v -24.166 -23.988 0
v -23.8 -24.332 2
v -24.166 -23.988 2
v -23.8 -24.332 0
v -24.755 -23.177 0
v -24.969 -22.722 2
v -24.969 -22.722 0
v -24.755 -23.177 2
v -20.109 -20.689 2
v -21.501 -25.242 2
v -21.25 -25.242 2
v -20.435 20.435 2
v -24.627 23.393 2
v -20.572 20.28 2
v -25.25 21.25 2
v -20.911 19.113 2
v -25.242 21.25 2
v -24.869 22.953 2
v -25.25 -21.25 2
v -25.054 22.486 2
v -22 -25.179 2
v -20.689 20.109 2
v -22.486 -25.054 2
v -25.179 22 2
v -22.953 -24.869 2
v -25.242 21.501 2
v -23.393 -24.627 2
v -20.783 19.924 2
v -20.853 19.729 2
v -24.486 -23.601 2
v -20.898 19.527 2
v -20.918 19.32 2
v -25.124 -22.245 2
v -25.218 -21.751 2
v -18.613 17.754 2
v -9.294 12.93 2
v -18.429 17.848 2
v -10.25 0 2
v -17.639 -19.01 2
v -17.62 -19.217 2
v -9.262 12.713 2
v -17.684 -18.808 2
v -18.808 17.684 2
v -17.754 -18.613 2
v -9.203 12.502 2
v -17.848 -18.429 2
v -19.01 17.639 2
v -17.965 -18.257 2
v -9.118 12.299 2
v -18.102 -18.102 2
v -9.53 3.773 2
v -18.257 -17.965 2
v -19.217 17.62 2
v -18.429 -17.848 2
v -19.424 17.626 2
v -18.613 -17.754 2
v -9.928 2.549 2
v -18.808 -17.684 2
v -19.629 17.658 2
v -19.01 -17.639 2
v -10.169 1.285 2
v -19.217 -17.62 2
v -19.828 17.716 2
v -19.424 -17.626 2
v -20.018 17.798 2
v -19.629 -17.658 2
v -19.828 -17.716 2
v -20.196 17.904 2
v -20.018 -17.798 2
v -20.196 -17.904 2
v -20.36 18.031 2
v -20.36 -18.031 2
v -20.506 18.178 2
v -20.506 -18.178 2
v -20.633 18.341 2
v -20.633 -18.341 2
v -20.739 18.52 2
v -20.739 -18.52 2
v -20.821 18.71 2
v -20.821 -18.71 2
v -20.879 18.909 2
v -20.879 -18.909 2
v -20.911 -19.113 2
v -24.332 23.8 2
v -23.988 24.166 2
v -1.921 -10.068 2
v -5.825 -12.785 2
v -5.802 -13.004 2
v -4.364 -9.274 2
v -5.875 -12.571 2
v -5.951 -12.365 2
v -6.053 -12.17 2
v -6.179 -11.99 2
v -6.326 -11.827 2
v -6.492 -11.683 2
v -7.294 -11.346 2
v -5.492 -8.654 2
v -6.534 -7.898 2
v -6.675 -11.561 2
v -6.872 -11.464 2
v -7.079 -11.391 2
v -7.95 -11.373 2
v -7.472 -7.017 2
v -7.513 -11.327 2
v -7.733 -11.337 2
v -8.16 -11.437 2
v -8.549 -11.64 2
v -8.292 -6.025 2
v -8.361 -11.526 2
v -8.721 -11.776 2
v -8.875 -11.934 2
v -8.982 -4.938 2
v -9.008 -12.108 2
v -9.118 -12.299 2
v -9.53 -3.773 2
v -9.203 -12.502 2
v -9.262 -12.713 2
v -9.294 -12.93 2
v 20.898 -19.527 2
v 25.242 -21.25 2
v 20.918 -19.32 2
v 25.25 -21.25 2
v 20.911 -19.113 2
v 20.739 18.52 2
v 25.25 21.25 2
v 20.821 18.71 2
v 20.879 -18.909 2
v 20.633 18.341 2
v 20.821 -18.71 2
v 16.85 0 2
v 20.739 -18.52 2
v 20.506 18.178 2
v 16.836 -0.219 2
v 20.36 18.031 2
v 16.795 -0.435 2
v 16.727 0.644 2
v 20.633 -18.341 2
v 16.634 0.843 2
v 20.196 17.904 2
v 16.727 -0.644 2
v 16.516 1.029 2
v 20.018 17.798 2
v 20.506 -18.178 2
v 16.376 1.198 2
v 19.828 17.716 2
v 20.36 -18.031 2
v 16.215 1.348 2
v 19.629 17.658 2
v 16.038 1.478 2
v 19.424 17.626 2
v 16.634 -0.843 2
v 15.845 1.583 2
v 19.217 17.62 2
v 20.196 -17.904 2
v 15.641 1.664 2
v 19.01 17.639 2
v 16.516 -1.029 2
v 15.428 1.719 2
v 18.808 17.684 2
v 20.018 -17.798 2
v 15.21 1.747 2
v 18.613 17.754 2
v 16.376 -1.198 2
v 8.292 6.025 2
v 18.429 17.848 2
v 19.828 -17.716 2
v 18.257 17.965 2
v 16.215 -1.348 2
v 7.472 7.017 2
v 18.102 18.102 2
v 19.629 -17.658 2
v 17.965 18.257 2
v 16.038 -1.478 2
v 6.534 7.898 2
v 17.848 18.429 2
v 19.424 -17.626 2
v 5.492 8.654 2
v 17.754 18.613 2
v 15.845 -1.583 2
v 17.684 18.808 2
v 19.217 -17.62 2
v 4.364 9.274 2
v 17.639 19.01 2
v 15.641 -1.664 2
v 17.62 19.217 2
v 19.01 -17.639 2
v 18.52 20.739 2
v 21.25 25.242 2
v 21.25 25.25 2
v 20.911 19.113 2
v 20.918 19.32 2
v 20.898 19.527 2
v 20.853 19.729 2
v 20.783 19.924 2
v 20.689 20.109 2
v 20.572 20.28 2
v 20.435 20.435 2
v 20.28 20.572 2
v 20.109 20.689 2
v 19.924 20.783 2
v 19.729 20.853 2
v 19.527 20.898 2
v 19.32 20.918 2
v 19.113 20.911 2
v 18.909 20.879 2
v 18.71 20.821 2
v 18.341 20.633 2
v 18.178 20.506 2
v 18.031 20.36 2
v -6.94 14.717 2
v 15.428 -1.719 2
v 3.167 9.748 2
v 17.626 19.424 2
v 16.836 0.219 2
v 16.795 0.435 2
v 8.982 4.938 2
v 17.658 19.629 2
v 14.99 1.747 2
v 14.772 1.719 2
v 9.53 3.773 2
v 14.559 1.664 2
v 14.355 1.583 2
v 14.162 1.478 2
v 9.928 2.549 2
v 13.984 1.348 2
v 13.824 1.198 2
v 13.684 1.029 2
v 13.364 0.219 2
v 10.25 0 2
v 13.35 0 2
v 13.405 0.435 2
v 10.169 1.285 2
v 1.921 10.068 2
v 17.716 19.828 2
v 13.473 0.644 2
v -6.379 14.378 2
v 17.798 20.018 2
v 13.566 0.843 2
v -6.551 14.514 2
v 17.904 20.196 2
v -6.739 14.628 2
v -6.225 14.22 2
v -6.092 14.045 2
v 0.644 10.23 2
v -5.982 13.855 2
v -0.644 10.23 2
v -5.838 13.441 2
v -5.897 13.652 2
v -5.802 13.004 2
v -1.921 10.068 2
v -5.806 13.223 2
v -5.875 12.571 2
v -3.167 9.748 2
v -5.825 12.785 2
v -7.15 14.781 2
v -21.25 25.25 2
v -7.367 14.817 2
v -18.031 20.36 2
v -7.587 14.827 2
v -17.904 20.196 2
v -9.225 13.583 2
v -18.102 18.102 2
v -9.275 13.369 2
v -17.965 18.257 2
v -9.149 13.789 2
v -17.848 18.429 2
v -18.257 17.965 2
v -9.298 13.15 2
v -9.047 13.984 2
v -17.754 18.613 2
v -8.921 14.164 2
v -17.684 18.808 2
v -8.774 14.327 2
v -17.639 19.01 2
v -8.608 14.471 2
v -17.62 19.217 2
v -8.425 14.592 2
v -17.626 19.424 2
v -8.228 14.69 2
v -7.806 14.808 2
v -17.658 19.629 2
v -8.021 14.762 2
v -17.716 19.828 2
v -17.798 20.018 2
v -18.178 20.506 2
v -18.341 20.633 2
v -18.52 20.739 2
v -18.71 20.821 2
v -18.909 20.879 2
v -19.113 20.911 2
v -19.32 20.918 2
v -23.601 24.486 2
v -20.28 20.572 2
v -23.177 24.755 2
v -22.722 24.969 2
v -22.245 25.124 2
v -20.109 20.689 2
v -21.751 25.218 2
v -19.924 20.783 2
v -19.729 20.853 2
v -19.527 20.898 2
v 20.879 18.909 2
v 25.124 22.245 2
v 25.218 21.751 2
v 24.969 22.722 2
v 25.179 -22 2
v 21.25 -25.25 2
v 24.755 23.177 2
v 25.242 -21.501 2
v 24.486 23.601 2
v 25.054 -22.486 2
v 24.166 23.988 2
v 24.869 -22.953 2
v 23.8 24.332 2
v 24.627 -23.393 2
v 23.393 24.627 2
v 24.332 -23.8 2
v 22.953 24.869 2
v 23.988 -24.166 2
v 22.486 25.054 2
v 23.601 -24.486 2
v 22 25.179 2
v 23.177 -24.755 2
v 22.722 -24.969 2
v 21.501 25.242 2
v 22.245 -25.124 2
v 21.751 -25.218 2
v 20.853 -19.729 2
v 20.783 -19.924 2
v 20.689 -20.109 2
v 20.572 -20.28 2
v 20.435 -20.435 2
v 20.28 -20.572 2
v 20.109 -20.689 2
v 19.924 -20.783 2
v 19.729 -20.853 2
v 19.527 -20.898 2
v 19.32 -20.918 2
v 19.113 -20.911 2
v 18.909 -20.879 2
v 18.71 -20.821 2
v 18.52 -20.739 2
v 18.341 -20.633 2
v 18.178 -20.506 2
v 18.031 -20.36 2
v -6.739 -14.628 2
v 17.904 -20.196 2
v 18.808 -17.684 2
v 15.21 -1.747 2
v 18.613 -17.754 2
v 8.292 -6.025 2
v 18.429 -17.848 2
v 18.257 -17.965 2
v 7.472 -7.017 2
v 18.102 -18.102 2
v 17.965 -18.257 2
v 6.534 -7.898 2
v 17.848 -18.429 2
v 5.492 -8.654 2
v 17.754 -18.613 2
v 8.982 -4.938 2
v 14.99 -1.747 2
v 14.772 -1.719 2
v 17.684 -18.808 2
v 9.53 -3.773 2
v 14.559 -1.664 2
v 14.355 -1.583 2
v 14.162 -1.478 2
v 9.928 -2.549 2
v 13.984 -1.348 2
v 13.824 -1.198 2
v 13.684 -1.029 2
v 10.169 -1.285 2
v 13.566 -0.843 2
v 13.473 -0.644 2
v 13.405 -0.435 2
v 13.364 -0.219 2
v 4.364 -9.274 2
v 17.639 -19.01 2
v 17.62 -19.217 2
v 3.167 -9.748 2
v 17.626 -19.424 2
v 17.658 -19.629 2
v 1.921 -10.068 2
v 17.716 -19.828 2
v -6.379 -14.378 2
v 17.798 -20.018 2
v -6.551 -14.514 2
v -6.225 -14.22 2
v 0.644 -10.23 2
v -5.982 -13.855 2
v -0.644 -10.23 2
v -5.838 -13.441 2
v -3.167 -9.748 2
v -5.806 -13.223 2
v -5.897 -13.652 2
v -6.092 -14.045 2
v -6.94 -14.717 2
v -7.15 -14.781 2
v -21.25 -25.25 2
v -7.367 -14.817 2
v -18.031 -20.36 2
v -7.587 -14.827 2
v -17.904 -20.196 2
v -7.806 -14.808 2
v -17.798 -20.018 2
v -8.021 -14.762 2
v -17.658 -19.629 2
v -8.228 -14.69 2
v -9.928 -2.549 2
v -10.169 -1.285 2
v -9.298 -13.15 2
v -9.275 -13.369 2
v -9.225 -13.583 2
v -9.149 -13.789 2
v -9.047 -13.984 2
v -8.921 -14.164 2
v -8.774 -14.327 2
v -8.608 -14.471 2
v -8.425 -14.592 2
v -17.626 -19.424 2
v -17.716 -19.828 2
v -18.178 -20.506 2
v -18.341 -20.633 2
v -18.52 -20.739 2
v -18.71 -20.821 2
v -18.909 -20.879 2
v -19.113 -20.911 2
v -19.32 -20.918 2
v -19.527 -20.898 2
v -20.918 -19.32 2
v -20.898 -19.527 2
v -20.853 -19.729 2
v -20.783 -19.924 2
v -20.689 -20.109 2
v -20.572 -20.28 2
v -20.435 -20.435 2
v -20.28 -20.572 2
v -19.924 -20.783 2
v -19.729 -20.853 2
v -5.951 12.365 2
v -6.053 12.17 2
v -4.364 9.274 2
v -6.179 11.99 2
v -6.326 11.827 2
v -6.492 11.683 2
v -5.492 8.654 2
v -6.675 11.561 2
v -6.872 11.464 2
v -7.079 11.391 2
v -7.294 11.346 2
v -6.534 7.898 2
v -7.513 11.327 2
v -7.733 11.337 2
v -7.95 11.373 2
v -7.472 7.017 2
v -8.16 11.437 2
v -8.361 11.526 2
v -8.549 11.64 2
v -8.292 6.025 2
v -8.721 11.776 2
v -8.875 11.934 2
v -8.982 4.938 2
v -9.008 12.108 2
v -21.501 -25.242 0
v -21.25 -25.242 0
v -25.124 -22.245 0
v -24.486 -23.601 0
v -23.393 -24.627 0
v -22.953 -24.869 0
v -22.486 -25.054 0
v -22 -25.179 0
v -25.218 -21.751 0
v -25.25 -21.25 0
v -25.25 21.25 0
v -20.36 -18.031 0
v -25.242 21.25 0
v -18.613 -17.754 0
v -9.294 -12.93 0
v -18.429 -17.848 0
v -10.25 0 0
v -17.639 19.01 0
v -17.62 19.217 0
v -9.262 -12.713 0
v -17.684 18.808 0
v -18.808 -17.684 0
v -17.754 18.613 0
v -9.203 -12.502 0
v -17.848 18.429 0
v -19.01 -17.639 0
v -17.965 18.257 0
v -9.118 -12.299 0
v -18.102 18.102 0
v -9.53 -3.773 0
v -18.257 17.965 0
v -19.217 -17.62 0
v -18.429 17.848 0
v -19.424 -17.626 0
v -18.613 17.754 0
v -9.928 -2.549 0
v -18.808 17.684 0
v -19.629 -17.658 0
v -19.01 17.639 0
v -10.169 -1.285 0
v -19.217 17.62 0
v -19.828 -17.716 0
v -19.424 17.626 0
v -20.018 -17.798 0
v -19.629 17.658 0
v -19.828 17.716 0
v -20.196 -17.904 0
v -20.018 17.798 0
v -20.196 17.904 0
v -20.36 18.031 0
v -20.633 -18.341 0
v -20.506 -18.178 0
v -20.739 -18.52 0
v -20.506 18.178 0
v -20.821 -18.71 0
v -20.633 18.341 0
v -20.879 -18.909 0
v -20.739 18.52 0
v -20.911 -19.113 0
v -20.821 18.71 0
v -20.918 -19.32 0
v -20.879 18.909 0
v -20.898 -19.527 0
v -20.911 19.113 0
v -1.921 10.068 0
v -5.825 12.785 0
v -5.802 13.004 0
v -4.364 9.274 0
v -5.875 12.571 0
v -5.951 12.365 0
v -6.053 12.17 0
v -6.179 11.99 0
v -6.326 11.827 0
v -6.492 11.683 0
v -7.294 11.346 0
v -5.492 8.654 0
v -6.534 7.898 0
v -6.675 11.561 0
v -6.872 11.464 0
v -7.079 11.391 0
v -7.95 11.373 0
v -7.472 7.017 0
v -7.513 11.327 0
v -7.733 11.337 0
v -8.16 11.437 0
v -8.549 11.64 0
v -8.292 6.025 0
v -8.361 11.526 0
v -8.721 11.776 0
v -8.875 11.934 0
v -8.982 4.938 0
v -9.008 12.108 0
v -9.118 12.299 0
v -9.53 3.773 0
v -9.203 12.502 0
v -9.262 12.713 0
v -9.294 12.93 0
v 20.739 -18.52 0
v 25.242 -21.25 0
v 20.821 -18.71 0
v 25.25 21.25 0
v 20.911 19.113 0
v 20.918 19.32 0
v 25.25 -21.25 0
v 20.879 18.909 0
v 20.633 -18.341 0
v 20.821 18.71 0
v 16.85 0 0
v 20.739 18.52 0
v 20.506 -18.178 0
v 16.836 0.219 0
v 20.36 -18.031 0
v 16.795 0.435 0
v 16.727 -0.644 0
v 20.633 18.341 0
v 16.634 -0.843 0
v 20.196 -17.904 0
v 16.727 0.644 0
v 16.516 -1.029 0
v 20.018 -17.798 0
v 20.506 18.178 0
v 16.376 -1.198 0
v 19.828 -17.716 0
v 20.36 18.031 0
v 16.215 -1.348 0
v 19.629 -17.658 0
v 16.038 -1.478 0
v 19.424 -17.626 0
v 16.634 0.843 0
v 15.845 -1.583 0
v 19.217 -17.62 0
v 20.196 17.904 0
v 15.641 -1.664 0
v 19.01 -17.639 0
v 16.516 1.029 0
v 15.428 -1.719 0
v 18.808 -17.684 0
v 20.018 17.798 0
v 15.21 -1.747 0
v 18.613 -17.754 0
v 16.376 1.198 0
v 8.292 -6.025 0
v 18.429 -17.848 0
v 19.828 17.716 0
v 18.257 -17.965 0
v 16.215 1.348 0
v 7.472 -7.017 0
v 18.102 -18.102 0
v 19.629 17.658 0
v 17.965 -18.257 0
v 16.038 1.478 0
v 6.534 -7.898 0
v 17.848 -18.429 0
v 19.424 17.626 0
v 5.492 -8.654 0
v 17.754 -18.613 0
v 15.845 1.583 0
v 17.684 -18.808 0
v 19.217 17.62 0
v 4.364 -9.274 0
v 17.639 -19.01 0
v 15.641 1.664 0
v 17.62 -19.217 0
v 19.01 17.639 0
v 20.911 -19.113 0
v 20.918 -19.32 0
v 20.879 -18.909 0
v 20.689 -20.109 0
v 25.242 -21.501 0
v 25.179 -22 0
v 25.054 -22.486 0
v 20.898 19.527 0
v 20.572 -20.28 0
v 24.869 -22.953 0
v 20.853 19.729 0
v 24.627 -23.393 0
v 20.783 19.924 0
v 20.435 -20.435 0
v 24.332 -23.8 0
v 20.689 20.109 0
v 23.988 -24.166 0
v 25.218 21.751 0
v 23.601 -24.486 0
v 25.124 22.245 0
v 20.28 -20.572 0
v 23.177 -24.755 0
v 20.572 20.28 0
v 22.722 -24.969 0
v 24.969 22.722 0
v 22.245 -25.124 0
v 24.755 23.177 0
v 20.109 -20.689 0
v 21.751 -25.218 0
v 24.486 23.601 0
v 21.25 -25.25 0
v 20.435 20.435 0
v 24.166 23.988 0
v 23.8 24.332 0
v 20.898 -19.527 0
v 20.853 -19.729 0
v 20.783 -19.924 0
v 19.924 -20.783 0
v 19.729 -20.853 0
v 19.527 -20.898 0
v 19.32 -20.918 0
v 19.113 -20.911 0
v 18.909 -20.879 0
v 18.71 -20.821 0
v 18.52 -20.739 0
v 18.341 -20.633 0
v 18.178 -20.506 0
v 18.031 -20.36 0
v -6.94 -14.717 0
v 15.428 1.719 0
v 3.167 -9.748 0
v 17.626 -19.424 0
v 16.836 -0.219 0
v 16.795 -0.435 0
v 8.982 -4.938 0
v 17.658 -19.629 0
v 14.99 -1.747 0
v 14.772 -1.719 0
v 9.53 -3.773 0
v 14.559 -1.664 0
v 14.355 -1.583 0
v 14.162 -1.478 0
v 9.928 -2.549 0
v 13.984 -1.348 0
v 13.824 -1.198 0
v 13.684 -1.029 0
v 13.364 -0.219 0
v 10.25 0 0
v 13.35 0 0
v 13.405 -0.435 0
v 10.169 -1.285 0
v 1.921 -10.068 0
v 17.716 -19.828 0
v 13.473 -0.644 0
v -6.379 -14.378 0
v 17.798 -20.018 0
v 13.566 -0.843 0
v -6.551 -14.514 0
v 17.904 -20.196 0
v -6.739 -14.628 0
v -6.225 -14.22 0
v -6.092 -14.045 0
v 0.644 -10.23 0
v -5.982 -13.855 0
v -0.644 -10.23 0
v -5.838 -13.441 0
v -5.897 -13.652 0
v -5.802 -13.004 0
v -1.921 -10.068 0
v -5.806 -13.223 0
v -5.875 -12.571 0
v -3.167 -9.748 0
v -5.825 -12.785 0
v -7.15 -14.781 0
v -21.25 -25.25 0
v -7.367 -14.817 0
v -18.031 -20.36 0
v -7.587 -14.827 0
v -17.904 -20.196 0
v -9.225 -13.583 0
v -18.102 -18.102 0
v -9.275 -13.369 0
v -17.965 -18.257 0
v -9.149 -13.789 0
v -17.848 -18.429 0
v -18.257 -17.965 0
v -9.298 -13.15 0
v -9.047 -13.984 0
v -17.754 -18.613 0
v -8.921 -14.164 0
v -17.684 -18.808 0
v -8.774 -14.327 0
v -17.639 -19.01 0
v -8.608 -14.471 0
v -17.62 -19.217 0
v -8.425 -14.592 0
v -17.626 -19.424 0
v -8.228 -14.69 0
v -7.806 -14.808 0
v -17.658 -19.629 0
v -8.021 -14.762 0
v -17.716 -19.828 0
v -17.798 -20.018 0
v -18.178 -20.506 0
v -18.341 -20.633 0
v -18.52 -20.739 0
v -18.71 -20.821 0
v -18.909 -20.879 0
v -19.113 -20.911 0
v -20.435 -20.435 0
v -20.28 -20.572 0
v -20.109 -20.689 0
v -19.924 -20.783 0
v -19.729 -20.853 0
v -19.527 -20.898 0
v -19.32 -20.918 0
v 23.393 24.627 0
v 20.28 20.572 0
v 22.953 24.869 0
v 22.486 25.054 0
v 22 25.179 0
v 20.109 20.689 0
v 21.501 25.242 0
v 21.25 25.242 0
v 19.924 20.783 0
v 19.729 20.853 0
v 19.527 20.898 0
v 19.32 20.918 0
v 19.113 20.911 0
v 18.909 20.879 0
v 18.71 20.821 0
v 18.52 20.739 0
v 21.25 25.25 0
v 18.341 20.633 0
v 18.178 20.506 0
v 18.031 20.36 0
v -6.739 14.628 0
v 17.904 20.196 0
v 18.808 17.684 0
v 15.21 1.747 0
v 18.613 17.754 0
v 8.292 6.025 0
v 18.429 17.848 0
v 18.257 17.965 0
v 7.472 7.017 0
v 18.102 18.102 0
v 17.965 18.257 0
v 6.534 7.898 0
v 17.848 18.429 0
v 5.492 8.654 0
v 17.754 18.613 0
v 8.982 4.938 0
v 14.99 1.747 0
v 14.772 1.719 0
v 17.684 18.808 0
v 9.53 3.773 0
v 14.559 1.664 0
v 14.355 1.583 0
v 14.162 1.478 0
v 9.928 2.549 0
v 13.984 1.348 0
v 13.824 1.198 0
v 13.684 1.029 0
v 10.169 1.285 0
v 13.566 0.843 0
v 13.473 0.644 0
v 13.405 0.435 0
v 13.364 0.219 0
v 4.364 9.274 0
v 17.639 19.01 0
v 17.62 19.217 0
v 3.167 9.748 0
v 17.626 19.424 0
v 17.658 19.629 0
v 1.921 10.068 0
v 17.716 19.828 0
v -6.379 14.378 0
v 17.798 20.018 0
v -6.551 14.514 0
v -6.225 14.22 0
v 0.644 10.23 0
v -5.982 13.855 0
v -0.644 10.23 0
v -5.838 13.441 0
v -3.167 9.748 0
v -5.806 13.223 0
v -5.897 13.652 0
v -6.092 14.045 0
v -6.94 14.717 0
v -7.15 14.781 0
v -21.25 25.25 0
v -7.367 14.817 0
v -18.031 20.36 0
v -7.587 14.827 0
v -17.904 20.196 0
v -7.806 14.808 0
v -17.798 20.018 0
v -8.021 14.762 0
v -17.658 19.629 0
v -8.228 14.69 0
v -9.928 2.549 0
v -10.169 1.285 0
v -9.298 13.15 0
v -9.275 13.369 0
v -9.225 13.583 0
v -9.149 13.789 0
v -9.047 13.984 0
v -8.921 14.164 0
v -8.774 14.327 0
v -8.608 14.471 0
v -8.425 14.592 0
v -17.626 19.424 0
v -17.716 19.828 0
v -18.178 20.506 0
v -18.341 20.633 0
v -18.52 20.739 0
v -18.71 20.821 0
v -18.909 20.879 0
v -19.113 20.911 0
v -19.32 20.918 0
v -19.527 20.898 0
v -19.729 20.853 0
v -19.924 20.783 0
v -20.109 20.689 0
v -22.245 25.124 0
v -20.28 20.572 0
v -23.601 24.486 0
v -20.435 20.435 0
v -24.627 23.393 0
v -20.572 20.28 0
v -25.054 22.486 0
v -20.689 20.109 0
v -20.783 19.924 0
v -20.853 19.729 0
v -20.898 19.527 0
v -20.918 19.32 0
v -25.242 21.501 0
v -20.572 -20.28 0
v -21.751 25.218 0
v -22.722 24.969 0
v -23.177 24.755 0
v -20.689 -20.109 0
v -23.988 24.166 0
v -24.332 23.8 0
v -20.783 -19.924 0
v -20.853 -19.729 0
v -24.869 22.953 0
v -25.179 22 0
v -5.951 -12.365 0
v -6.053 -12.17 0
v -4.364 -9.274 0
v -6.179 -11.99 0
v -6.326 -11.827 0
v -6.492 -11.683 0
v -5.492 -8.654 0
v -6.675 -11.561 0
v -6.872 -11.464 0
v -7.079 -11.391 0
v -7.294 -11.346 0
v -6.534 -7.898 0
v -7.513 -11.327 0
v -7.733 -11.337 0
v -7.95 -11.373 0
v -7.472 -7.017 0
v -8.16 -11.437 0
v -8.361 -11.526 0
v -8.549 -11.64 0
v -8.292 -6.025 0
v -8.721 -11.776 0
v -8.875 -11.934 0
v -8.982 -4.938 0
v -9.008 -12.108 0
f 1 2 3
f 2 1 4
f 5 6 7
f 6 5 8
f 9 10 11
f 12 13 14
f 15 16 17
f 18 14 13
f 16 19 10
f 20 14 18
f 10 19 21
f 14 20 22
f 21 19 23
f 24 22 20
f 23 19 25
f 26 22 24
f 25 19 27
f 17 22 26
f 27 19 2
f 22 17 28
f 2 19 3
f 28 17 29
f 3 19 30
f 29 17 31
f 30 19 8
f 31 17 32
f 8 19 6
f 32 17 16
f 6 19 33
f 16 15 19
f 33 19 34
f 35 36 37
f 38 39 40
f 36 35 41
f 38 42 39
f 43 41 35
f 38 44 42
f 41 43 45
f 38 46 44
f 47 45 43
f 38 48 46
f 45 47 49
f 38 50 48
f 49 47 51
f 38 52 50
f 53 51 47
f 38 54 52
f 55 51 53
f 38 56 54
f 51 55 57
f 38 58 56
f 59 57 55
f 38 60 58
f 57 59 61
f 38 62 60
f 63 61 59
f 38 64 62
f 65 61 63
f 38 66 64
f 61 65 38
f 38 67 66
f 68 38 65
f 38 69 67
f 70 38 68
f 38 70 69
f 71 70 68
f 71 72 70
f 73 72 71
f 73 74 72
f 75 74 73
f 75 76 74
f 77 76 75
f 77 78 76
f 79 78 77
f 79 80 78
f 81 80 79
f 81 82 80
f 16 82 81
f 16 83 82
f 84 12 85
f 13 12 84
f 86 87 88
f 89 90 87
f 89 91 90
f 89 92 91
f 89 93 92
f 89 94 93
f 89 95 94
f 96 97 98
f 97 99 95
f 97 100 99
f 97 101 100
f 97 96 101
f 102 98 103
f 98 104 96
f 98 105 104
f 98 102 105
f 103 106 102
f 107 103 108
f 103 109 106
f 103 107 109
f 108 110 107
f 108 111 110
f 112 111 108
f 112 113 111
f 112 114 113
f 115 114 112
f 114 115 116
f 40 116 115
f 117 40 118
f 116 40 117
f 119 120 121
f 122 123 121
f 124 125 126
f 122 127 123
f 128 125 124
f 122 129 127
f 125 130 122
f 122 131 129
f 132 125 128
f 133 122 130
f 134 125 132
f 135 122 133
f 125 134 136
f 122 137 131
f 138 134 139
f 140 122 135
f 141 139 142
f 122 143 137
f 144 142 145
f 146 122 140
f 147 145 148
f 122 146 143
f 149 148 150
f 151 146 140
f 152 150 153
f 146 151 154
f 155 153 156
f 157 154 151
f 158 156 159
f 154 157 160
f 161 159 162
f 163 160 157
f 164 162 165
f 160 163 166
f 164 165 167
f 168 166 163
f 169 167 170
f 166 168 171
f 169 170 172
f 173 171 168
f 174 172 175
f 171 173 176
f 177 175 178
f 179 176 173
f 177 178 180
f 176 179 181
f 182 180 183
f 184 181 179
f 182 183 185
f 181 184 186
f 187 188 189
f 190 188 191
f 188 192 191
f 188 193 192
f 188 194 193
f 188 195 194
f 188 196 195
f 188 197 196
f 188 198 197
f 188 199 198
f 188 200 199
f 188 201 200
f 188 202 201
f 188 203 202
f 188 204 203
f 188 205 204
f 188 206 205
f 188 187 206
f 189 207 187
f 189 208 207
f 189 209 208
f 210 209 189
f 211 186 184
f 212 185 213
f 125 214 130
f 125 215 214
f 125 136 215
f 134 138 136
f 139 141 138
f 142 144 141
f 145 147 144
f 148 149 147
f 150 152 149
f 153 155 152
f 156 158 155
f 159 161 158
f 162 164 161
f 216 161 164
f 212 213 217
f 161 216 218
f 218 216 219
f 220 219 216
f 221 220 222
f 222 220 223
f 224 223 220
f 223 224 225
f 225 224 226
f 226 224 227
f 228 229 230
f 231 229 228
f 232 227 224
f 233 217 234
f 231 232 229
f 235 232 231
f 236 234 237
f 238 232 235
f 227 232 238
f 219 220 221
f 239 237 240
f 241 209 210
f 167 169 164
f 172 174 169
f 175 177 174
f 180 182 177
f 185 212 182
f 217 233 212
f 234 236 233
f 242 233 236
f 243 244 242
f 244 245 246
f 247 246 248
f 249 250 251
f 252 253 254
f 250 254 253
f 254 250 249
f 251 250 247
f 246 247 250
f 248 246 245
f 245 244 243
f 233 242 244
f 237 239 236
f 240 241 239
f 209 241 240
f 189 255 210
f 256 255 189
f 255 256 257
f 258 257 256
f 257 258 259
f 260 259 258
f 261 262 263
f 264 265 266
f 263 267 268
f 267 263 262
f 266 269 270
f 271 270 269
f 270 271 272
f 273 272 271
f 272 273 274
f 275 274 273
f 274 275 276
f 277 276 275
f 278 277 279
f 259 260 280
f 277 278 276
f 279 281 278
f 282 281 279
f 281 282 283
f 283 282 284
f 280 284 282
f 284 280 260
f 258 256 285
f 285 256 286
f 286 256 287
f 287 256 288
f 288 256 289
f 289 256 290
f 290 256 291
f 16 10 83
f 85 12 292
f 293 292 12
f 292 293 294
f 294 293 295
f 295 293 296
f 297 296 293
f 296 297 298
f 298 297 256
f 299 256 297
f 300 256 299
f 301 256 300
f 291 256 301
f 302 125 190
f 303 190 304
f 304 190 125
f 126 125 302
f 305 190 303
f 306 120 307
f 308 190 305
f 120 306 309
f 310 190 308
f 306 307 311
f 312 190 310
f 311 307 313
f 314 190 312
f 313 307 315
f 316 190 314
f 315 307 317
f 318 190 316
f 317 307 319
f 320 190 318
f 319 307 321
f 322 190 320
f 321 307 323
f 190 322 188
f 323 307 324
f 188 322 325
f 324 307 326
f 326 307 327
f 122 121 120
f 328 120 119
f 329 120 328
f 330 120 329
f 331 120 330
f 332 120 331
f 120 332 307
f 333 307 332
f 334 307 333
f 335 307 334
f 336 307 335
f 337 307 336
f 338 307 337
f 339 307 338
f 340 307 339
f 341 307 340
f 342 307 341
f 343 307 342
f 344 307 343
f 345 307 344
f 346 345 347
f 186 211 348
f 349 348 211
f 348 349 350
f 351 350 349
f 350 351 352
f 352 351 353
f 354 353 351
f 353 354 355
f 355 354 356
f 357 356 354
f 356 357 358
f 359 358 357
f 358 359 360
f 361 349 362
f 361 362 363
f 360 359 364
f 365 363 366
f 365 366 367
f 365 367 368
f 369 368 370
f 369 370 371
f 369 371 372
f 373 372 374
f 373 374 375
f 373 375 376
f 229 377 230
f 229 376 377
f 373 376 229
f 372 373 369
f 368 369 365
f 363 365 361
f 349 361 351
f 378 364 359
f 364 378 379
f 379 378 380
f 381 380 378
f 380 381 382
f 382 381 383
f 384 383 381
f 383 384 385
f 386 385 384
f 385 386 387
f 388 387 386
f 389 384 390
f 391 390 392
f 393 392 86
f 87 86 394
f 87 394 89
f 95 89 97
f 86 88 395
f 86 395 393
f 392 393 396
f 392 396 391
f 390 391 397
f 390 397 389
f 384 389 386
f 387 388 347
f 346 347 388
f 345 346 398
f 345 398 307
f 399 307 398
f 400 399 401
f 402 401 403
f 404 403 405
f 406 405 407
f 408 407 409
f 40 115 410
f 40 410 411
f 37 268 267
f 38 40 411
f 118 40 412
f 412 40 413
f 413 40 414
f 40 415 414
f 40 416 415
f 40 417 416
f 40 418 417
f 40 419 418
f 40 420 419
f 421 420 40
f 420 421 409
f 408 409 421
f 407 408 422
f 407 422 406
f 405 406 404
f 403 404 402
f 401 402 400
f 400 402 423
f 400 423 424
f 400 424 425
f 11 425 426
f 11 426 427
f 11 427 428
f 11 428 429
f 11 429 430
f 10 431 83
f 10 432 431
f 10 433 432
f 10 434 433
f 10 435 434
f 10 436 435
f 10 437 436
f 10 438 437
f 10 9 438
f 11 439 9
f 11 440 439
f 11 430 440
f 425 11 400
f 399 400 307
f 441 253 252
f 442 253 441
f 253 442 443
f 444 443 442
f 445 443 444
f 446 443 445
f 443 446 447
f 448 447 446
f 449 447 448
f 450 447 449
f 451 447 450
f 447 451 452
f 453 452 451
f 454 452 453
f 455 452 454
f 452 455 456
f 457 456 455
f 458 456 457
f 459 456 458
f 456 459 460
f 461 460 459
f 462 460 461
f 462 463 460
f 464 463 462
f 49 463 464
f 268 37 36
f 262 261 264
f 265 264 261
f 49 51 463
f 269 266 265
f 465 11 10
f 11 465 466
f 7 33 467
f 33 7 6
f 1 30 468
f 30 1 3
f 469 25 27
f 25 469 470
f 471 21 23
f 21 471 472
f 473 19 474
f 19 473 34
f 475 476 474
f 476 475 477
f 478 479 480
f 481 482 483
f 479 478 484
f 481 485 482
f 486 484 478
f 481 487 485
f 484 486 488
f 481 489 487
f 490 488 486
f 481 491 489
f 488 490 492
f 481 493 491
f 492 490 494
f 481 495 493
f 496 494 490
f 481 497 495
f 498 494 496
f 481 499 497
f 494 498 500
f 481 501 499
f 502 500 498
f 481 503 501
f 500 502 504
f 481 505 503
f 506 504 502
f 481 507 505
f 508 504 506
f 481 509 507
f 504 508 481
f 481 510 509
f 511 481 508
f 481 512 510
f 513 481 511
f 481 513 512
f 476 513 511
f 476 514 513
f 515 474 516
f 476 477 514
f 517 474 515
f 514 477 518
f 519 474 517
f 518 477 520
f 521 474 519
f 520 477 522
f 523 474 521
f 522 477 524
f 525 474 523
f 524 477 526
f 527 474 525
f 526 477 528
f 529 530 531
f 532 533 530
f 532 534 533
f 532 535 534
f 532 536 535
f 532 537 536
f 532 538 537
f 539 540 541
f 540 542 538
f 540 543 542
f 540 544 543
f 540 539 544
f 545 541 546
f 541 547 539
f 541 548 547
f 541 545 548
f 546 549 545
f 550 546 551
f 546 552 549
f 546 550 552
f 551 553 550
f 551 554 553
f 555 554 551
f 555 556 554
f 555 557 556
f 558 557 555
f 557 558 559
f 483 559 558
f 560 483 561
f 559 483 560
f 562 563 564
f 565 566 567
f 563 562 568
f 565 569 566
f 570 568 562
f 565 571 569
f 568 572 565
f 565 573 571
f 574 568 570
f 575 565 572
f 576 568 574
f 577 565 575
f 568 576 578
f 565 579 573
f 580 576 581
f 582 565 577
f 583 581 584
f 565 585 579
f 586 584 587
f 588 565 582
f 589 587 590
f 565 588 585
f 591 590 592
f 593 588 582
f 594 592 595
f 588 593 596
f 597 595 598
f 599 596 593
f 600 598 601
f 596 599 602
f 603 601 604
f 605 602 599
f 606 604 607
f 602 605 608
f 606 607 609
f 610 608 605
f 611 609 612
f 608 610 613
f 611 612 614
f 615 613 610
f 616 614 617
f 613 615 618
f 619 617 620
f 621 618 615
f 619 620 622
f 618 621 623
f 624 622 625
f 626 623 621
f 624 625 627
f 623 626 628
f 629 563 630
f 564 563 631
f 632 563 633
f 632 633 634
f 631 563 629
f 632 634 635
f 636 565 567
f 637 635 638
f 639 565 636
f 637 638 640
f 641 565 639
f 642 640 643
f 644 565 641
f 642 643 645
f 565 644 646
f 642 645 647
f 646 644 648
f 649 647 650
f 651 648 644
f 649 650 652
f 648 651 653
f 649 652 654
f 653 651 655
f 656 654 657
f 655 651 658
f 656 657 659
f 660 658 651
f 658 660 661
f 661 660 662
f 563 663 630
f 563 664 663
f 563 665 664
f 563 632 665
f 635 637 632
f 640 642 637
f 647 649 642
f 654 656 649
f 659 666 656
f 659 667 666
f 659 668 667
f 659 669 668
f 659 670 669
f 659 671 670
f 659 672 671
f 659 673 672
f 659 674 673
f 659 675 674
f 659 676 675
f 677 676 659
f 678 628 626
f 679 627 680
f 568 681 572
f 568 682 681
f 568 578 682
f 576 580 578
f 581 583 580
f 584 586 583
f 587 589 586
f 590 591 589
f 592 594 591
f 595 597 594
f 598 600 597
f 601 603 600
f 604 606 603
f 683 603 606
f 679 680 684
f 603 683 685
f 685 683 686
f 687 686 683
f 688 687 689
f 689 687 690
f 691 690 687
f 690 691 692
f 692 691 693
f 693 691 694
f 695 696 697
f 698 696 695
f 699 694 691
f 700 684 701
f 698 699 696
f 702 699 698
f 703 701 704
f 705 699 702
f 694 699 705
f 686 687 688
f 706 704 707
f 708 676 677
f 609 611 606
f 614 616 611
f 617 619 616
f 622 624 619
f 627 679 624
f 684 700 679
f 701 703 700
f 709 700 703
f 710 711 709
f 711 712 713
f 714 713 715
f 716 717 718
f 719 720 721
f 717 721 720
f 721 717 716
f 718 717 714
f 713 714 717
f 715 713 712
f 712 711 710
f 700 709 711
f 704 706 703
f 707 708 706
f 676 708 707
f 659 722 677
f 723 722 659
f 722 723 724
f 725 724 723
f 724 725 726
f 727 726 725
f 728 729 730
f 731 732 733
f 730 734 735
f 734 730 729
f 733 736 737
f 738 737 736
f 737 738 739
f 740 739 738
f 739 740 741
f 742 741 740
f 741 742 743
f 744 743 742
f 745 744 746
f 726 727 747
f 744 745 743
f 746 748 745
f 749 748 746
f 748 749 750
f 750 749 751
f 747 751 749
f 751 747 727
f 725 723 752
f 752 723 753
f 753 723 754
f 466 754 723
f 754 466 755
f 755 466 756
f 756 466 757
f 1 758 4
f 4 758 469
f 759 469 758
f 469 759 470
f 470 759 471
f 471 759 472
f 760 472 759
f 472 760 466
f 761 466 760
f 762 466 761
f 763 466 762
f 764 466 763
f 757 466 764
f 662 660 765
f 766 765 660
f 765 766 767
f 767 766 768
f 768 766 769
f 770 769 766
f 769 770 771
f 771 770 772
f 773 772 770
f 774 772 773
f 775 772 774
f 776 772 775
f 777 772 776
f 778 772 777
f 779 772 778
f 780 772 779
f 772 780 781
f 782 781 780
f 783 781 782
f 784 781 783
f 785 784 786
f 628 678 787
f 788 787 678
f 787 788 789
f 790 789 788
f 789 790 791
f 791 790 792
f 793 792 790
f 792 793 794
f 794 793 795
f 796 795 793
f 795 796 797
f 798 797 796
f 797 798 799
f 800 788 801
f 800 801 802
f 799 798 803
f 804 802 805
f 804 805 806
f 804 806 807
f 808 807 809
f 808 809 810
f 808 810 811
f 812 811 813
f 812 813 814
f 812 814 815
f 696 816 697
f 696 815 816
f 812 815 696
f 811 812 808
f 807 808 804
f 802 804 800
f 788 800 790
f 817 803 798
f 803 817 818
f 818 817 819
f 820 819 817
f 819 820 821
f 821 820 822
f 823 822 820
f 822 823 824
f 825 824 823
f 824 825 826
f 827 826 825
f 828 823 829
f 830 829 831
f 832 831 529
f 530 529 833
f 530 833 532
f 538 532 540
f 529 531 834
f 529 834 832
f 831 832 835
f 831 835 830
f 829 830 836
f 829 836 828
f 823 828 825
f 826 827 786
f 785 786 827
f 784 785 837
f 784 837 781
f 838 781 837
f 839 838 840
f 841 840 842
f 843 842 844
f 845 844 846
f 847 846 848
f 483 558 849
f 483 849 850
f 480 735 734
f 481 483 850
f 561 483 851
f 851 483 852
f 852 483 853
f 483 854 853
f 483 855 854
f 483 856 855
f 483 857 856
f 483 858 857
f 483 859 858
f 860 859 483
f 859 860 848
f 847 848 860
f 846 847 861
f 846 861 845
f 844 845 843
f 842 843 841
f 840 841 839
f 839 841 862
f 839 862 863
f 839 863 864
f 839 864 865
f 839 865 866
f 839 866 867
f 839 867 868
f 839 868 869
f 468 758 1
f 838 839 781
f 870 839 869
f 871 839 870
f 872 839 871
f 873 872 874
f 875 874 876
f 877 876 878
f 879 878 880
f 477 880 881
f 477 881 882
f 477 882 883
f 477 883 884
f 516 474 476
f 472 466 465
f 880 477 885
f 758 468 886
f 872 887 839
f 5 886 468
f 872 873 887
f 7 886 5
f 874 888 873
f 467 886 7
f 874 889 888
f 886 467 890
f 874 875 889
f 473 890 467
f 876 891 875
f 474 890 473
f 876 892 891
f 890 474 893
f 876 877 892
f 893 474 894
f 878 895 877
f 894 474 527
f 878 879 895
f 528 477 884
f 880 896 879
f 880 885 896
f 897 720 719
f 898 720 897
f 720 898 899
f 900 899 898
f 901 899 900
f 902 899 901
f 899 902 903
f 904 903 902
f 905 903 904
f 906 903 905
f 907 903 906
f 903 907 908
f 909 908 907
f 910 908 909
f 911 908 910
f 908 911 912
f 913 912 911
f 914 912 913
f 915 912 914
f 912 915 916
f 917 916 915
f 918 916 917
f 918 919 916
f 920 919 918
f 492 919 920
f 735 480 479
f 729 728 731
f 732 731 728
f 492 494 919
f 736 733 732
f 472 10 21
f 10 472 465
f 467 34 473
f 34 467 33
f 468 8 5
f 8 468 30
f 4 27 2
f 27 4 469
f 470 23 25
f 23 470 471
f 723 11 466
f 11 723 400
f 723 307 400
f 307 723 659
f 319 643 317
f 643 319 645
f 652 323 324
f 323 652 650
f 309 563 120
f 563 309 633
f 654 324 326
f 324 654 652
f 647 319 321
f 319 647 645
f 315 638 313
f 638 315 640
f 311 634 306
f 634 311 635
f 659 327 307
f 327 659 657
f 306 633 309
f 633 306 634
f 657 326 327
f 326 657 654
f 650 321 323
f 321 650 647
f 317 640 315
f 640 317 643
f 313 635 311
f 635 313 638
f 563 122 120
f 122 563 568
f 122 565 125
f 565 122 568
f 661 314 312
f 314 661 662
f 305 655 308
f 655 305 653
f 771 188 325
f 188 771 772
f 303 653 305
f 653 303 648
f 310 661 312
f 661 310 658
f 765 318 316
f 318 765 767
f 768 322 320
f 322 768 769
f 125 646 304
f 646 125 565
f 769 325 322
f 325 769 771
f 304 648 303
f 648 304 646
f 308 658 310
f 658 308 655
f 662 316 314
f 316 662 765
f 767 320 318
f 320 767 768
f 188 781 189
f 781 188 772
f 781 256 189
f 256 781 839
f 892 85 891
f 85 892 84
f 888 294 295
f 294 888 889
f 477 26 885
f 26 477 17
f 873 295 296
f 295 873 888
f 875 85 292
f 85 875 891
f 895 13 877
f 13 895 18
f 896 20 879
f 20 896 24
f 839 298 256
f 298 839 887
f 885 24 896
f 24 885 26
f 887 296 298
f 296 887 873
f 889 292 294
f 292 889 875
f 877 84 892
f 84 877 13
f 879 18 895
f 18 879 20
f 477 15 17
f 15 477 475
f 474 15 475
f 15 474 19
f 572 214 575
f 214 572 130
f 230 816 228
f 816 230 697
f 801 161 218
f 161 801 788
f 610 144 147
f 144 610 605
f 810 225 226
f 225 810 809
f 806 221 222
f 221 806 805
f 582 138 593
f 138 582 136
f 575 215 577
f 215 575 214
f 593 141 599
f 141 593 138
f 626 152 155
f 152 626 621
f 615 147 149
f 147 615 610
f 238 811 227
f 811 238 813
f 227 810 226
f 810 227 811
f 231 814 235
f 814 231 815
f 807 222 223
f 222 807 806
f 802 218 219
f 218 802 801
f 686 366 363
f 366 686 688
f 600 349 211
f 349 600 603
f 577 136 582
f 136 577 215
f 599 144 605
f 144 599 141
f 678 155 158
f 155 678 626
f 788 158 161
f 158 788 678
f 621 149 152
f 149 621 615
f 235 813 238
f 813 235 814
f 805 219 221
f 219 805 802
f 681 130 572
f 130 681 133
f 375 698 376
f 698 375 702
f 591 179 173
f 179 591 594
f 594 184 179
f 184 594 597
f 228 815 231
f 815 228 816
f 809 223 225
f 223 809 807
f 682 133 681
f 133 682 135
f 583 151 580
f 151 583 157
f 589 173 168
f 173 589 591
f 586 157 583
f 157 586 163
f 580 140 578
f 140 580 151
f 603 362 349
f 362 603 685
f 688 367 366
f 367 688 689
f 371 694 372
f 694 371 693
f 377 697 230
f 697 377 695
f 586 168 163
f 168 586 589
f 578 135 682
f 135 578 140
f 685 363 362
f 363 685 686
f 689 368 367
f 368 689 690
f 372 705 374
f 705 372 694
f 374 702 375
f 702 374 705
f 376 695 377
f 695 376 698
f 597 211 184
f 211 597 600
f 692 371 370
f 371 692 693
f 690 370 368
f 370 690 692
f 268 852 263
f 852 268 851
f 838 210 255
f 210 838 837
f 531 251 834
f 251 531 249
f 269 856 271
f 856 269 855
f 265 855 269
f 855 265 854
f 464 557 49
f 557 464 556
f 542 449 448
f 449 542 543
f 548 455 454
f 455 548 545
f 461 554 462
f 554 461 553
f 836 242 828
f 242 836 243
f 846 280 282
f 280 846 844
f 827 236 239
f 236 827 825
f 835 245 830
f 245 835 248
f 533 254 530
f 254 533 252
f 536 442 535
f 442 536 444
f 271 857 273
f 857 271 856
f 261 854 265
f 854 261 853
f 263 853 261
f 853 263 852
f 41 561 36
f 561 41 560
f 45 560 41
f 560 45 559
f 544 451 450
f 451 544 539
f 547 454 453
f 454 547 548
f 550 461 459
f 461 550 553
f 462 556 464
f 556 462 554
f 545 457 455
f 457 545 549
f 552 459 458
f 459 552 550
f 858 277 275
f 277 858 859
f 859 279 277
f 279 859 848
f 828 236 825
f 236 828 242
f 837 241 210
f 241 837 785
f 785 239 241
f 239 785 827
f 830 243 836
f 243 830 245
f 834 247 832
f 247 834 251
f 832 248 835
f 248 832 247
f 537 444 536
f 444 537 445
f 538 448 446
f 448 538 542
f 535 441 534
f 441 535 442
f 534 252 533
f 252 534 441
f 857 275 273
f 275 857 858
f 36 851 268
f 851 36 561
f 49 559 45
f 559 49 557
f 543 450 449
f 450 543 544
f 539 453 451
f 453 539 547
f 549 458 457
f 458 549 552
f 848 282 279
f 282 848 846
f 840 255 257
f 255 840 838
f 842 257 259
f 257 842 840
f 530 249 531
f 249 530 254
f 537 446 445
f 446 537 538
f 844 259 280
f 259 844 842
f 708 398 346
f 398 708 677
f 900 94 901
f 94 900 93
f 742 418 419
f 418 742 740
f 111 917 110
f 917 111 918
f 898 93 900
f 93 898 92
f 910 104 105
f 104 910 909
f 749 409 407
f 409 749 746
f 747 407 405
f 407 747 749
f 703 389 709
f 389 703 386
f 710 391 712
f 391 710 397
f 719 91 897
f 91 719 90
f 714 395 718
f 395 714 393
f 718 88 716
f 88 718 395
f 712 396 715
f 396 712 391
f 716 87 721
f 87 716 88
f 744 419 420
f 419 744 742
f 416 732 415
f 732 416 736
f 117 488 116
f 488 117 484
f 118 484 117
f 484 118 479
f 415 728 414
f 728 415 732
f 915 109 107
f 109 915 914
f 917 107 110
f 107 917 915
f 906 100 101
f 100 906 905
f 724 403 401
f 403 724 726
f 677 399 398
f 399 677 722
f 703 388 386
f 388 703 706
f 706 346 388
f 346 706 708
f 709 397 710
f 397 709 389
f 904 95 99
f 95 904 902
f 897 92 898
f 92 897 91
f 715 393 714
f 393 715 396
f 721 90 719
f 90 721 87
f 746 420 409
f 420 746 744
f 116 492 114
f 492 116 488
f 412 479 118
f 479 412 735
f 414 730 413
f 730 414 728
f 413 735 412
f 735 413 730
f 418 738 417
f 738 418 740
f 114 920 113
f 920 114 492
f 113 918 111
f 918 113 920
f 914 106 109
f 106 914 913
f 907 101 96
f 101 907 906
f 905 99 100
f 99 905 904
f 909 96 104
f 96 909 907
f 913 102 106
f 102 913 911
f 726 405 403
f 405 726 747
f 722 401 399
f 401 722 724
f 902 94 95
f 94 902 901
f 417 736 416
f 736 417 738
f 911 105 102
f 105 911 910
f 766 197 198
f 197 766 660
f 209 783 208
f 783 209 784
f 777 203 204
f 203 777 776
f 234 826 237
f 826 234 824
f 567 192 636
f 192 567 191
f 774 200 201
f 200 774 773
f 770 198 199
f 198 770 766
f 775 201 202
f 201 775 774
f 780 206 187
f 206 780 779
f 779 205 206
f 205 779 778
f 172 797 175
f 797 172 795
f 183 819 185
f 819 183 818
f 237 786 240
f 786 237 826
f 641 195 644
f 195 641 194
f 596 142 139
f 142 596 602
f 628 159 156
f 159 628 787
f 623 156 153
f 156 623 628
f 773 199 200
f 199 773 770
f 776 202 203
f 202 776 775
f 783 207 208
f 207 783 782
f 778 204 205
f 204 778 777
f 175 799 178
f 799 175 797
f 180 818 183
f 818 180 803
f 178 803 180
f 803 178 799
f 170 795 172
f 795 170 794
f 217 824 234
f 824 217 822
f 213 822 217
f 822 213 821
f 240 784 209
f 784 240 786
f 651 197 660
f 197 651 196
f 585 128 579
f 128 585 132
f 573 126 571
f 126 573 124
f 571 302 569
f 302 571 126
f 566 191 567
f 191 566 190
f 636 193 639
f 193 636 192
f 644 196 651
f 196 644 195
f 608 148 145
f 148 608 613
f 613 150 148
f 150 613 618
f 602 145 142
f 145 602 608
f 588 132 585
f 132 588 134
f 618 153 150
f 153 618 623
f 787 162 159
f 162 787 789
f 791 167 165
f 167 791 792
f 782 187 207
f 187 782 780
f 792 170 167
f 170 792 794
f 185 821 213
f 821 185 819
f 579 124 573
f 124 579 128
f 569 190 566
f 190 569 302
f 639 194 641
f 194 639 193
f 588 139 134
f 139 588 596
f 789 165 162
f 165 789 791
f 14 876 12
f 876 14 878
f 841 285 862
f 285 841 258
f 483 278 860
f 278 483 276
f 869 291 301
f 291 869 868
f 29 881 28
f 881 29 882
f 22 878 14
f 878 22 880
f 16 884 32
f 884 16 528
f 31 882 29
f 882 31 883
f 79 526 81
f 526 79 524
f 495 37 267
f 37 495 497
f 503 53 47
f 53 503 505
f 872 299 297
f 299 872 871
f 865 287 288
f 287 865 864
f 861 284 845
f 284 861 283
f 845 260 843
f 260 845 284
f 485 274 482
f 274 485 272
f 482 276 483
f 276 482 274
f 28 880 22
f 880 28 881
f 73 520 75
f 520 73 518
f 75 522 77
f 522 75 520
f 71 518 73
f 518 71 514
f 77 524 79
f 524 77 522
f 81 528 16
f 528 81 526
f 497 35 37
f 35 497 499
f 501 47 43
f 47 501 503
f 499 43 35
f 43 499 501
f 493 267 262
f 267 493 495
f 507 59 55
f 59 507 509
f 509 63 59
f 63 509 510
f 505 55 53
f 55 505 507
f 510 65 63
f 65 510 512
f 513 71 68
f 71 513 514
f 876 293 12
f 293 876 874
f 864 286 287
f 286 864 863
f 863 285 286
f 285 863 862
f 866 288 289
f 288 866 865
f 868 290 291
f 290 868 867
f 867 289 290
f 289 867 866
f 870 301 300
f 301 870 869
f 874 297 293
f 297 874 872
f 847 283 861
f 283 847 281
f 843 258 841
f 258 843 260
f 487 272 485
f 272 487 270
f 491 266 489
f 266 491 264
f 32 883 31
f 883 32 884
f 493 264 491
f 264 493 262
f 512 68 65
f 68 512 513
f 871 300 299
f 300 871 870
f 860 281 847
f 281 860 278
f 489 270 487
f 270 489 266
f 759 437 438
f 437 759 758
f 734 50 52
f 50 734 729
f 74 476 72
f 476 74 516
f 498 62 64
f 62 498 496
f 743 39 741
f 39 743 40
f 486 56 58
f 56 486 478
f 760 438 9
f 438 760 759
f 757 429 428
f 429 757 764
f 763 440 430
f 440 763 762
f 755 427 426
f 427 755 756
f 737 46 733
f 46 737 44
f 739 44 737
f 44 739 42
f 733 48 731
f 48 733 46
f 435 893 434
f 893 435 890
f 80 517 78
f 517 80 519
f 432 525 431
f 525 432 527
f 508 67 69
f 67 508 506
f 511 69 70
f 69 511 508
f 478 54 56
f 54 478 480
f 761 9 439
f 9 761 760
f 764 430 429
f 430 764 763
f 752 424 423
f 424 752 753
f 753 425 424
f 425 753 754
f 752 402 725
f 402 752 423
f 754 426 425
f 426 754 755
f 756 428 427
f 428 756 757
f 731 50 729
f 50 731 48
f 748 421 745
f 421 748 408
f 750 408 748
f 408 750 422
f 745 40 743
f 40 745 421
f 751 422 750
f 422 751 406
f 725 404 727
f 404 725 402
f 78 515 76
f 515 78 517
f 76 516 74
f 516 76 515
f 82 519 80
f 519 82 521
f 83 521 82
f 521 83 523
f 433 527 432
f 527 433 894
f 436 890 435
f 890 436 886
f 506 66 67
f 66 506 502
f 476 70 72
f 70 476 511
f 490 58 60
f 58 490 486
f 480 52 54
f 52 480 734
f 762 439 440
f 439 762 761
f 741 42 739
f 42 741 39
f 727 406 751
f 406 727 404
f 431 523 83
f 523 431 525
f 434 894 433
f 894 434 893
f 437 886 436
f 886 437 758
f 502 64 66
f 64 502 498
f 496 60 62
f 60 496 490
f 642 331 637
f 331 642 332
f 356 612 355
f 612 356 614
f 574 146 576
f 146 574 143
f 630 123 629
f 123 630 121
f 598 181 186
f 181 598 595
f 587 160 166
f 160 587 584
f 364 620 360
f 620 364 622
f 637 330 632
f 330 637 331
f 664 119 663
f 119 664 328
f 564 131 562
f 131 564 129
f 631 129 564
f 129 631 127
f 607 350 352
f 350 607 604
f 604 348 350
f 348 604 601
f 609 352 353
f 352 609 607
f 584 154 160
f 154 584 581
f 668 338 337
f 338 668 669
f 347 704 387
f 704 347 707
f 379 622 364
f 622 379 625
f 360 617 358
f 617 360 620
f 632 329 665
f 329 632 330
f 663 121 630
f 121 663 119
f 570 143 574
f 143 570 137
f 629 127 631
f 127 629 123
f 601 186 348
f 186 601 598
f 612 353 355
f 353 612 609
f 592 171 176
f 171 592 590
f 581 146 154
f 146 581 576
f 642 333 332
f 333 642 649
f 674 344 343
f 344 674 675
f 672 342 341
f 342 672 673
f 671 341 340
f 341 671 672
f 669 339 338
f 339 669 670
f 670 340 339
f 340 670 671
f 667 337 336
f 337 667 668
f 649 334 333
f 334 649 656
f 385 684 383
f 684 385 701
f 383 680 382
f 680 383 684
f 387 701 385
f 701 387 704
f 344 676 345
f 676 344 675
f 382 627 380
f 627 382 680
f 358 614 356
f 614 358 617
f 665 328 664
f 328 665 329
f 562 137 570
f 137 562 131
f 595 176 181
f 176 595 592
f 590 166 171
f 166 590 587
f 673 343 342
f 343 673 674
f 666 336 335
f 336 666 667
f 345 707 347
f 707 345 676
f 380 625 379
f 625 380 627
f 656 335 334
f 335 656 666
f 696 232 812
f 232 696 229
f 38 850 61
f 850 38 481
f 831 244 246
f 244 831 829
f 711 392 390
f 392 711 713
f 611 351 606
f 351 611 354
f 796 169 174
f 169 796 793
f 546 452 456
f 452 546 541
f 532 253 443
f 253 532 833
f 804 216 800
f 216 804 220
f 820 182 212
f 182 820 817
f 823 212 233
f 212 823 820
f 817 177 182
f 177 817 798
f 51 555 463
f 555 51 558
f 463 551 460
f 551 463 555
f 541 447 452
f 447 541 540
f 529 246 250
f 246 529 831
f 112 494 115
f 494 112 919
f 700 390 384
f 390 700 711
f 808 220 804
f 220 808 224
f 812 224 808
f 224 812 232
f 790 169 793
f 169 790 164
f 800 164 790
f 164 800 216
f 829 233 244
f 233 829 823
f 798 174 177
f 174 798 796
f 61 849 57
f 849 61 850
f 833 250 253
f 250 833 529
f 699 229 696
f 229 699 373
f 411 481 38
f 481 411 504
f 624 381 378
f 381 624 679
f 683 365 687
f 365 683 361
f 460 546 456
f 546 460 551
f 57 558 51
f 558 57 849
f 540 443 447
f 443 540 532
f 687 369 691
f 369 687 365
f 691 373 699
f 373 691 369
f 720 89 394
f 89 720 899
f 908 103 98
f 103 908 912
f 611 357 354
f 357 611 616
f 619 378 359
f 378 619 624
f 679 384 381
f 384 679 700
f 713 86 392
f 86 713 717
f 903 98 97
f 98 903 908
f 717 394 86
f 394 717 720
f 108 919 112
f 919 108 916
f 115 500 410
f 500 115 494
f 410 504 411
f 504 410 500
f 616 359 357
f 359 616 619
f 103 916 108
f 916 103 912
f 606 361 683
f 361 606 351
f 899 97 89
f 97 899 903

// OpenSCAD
// file: ../library_deh/mag_mount.scad
/* mag_mount.scad

 * ****** Stud magnets ******
16 mm 
http://www.kjmagnetics.com/proddetail.asp?prod=MM-C-16
    Dimensions:
        D=16mm (0.63")
        M=4mm (0.16") (M4 Coarse Male threaded stud)
        H=13mm (0.51")
        h=5mm (0.20")
    Material: NdFeB, Grade N38
    Plating/Coating: Ni-Cu-Ni (Nickel)
    Magnetization Direction: Axial (Poles on Flat Ends)
    Weight: 0.26 oz. (7.37 g)
    Pull Force: 12.1 lbs
    Surface Field: N/A
    Brmax: 12,600 Gauss
    BHmax: 38 MGOe
   $2.49
*/
// Measured dimensions
 mag_thick = 4.82;	    // Magnet thickness (base to shell top)
 mag_shell_dia = 16.0;	    // Magnet shell OD
 mag_shell_flat_dia = 11;   // Dia of flat of magent
 mag_stud_dia = 2.8;        // Dia of mounting magnet studs (4-40)
 mag_stud_len = 8.0;        // Height of stud from magnet back
 mag_washer_thick = 1.1;    // Thickness of washer
 mag_nut_thick = 2.4;       // Stud nut (M3) thickness
 mag_nut_hex_flat = 5.41;   // Nut across flats
 mag_nut_hex_peak = 6.20;   // Nut across peaks (also dia of nut)
 mag_washer_dia = 7.1; // 9.5;      // Diameter of washer for magnet stud
 mag_washer_dia_extra = 2;  // Washer slop

/*
http://www.kjmagnetics.com/proddetail.asp?prod=MM-C-20


    Dimensions:
        D=20mm (0.79")
        M=4mm (0.16") (M4 Coarse Male threaded stud)
        H=15mm (0.59")
        h=7mm (0.28")
    Material: NdFeB, Grade N38
    Plating/Coating: Ni-Cu-Ni (Nickel)
    Magnetization Direction: Axial (Poles on Flat Ends)
    Weight: 0.53 oz. (15.0 g)
    Pull Force: 28.7 lbs
    Surface Field: N/A
    Brmax: 12,600 Gauss
    BHmax: 38 MGOe

  $3.14
*/
 mag20_thick = 7.11;	    // Magnet thickness (base to shell top)
 mag20_shell_dia = 20.2;    // Magnet shell OD
 mag20_stud_dia = 4.53;     // Dia of mounting magnet stud at base
 mag20_stud_len = 7.75;       // Height of stud from magnet back
 mag20_washer_thick = 0.85;    // Thickness of washer
 mag20_nut_thick = 2.93;       // Nut for stud thickness
 mag20_washer_dia = 8.68;      // Diameter of washer for magnet stud
 mag20_washer_dia_extra = 2;  // Washer slop

/*
http://www.kjmagnetics.com/proddetail.asp?prod=MM-C-25

    Dimensions:
        D=25mm (0.98")
        M=5mm (0.20") (M5 Coarse Male threaded stud)
        H=17mm (0.67")
        h=8mm (0.32")
    Material: NdFeB, Grade N38
    Plating/Coating: Ni-Cu-Ni (Nickel)
    Magnetization Direction: Axial (Poles on Flat Ends)
    Weight: 0.92 oz. (26.1 g)
    Pull Force: 48.5 lbs
    Surface Field: N/A
    Brmax: 12,600 Gauss
    BHmax: 38 MGOe
  $4.20
*/
// $$$$$ INCOMPLETE $$$$$$
 mag25_thick = 4.82;	    // Magnet thickness (base to shell top)
 mag25_shell_dia = 16.0;	    // Magnet shell OD
 mag25_stud_dia = 2.8;        // Dia of mounting magnet studs (4-40)
 mag25_stud_len = 7.95;       // Height of stud from magnet back
 mag25_washer_thick = 1.1;    // Thickness of washer
 mag25_nut_thick = 2.4;       // Nut for stud thickness
 mag25_washer_dia = 9.5;      // Diameter of washer for magnet stud
 mag25_washer_dia_extra = 2;  // Washer slop

// Cylindrical magnets
mag_cyl_dia = 6.5; 
mag_cyl_ht = 5.05;
// file: ../library_deh/deh_shapes.scad
/* **** deh_shapes.scad *****
   * Library of useful shapes
   * 20170512
*/


/*  ***** tubedeh *****
d1 = outside diameter
d2 = inside diameter
ht = height
reference is center of tube, bottom
*/
module tubedeh(d1,d2,ht)
{
   difference()
   {
     cylinder(d = d1, h = ht, center = false);
     cylinder(d = d2, h = ht + .001, center = false);
   }
}
/* ***** rounded_bar *****
 * rectangular bar with rounded end
bar with one end rounded
rounded_bar(d, l, h)
d = diameter of rounded end, and width of bar
l = length of bar from center of rounded end to end
h = thickness (height) of bar
reference is center of rounded end, bottom
*/
module rounded_bar(d, l, h)
{
    // Rounded end
    cylinder(d = d, h = h, center = false);
    // Bar
    translate([0, -d/2, 0])
       cube([l, d, h],false);
}
/* ***** eyebar *****
 * rounded bar with hole in rounded end
 * module eye_bar(d1, d2, len, ht)
d1 = outside diameter of rounded end, and width of bar
d2 = diameter of hole in end of bar
*/
module eye_bar(d1, d2, len, ht)
{
   difference()
   {   
      rounded_bar(d1,len,ht);
      cylinder(d = d2, h = ht + .001, center = false);
   }
}
/* ***** rounded_rectangle ******
rounded_rectangle(l,w,h,rad);
l = length (x direction)
w = width (y direction)
h = thickness (z direction)
rad = radius of corners
reference = center of rectangle x,y, bottom
*/
module rounded_rectangle(l,w,h,rad)
{
  translate([-(l-rad)/2,-(w-rad)/2,0])
  {
    // Four rounded edges
    translate([0,0,0])
      rounded_bar(rad*2,l-rad,h);
    translate([l-rad,0,0])
      rotate([0,0,90])
      rounded_bar(rad*2,w-rad,h);
    translate([l-rad,w-rad,0])
      rotate([0,0,180])
      rounded_bar(rad*2,l-rad,h);
    translate([0,w-rad,0])
      rotate([0,0,-90])
      rounded_bar(rad*2,w-rad,h);
    // Fill in center
    translate([0,0,0])
      cube([l-rad + .01,w-rad + .01,h],false);
  }
}

/* ***** rounded rim *****
module rounded_rim(l,w,h,rad,tk);
l = length (inside, x direction)
w = width (inside, y direction)
h = thickness (z direction)
rad = radius of corners
tk = thickness of rim wall
*/
module rounded_rim(l,w,h,rad,tk)
{
  difference()
  {
    rounded_rectangle(l+2*tk,w+2*tk,h,rad);
    rounded_rectangle(l, w, h, rad);
  }
}

/* ***** wedge *****
l = length
w = width
h = height/thickness
*/
 module wedge(l, w, h)
 {
   polyhedron(
      points=[[0,0,0], [l,0,0], [l,w,0], [0,w,0], [0,w,h], [l,w,h]],
       faces=[[0,1,2,3],[5,4,3,2],[0,4,5,1],[0,3,4],[5,2,1]] );
 }
/* ***** rounded_triangle *****
 * l1 = side 1
 * l2 = side 2
 * l3 = side 3
 * h  = height/thickness
 * rad = radius of rounded corners
 */
module rounded_triangle(l1,l2,l3,h,rad)
{
  // Compute rotation angles
  al3 = acos((l1*l1 + l2*l2 - l3*l3)/(2 * l1 * l2));
  al1 = acos((l2*l2 + l3*l3 - l1*l1)/(2 * l2 * l3));
  al2 = acos((l3*l3 + l1*l1 - l2*l2)/(2 * l3 * l1));
  // Setup bars for edges
  translate([0,0,0])
    rotate([0,0,0])
      rounded_bar(rad,l3,h);
  translate([l3,0,0])
    rotate([0,0,180-al2])
      rounded_bar(rad,l1,h);
  rotate([0,0,al1])
    translate([l2,0,0])
      rotate([0,0,180])
        rounded_bar(rad,l2,h);
  // Fill in center
    triangle(l1,l2,l3,h);
}
/* ***** triangle *****
 * l1 = side 1
 * l2 = side 2
 * l3 = side 3
 * h  = height/thickness
 */
module triangle(l1,l2,l3,h)
{
  // Compute rotation angle
  al1 = acos((l2*l2 + l3*l3 - l1*l1)/(2 * l2 * l3));
  
  linear_extrude(height = h)
  polygon(points = [[0,0],[l3,0],[l2*cos(al1),l2*sin(al1)]]);
}
/* ***** chamfered hole *****
 * Punch hole with chamfer on one end
 * d1 = main hole diameter
 * d2 = hole diameter at chamfered end
 * ht1 = height of whole hole
 * ht2 = depth of  chamfer
*/
module chamfered_hole(d1,d2,ht1,ht2)
{
   rotate_extrude(convexity = 10)
     polygon(points = [[0,0],[d1/2,0],[d1/2,ht1-ht2],[d2/2,ht1],[0,ht1]]);

}

/* ***** fillet *****
 * r = radius of fillet
 * l = length of fillet
 fillet (r,l);
*/
module fillet(r,l)
{
   difference()
   {
     union()
     {
       cube([2*r,2*r,l]);
     }
     union()
     {
       translate ([r,r,0])
           cylinder(d = 2*r + 0.1, h = l, center = false);
       translate([r,0,0])
           cube([r,2*r,l],center = false);
       translate([0,r,0])
           cube([2*r,r,l],center = false);
     }
   }
}
/* ***** circular chamfer *****
 * d = outer diameter
 * rad = chamfer radius
 * circular_chamfer(d, rad);
*/
module circular_chamfer(d, rad)
{
  ofs = (d/2 - rad);
  rotate_extrude()
  translate([ofs,0])
   difference()
   {
     union()
     {
       square(size = [rad, rad]);
     }
     union()
     {
       translate ([0,rad ])
           circle(d = 2*rad + 0.1);
     }
   }
}
module circular_inner_chamfer(d, rad)
{
  circular_chamfer(d, rad);
} 

/* ***** circular chamfer *****
 * d = inner diameter
 * rad = chamfer radius
 * circular_chamfer(d, rad);
*/
module circular_outer_chamfer(d, rad)
{
  ofs = (d/2 - rad);
  rotate_extrude()
  translate([ofs,0])
   difference()
   {
     union()
     {
       square(size = [rad, rad]);
     }
     union()
     {
       translate ([rad,rad ])
           circle(d = 2*rad + 0.1);
     }
   }
}
// main file
/* shaft_fix1p.scad
 * Top plate for ixture for holding encoder over AC motor
 * Date: 20170729
 * #### Be sure to use latest openscad! ####
 * #### or rotate_extrude will not work ####
 */

include <../library_deh/deh_shapes.scad>
include <../library_deh/mag_mount.scad>

$fn = 50;

ac_d = 77.3;    // Diameter of AC motor
pst_d = 10.7+.3; // Diameter of hole for AC motor posts
psc_d = 66.7;   // Diameter of four screw holes on AC motor posts

enc_d = 38.5;   // Diameter of encoder body

ac_base = 3;

tp_base = 2;




vp_d = 8;   // Dia of vertical post
vp_h = 2.8; // Dia of hole for mounting screw
vp_ht = 3; // Height of posts
vp_sc_h = 10; // Depth of screw hole

module topbase()
{
	m = (vp_d*1) + enc_d;
	rounded_rectangle(m,m,tp_base,vp_d/2);

}

module vpost()
{
    ofs_x = vp_d + enc_d/2;
    ofs_z = vp_ht - vp_sc_h;
    
    translate([ofs_x,0,0])
                    cylinder( d=3.3, h=10, center=false);
}

module vposts()
{
     for (i = [0+45 : 90 : 360+45])
     {
        rotate([0,0,i])
           vpost();    
     }
     cylinder(d=20.5,h=10,center=false);
}

en_r = 15.1; // Encoder mtg hole radius

module emtg()
{
     for (i = [0 : 120 : 360])
     {
        rotate([0,0,i])
           translate([en_r,0,0])    
            cylinder(d = 3.5,h = 10, center=false);
     }
        
}

module total()
{
   difference()
   {
     union()
    {
      topbase();
    }
    union()
    {
       vposts();
       emtg();
    }
   }

}
total();
